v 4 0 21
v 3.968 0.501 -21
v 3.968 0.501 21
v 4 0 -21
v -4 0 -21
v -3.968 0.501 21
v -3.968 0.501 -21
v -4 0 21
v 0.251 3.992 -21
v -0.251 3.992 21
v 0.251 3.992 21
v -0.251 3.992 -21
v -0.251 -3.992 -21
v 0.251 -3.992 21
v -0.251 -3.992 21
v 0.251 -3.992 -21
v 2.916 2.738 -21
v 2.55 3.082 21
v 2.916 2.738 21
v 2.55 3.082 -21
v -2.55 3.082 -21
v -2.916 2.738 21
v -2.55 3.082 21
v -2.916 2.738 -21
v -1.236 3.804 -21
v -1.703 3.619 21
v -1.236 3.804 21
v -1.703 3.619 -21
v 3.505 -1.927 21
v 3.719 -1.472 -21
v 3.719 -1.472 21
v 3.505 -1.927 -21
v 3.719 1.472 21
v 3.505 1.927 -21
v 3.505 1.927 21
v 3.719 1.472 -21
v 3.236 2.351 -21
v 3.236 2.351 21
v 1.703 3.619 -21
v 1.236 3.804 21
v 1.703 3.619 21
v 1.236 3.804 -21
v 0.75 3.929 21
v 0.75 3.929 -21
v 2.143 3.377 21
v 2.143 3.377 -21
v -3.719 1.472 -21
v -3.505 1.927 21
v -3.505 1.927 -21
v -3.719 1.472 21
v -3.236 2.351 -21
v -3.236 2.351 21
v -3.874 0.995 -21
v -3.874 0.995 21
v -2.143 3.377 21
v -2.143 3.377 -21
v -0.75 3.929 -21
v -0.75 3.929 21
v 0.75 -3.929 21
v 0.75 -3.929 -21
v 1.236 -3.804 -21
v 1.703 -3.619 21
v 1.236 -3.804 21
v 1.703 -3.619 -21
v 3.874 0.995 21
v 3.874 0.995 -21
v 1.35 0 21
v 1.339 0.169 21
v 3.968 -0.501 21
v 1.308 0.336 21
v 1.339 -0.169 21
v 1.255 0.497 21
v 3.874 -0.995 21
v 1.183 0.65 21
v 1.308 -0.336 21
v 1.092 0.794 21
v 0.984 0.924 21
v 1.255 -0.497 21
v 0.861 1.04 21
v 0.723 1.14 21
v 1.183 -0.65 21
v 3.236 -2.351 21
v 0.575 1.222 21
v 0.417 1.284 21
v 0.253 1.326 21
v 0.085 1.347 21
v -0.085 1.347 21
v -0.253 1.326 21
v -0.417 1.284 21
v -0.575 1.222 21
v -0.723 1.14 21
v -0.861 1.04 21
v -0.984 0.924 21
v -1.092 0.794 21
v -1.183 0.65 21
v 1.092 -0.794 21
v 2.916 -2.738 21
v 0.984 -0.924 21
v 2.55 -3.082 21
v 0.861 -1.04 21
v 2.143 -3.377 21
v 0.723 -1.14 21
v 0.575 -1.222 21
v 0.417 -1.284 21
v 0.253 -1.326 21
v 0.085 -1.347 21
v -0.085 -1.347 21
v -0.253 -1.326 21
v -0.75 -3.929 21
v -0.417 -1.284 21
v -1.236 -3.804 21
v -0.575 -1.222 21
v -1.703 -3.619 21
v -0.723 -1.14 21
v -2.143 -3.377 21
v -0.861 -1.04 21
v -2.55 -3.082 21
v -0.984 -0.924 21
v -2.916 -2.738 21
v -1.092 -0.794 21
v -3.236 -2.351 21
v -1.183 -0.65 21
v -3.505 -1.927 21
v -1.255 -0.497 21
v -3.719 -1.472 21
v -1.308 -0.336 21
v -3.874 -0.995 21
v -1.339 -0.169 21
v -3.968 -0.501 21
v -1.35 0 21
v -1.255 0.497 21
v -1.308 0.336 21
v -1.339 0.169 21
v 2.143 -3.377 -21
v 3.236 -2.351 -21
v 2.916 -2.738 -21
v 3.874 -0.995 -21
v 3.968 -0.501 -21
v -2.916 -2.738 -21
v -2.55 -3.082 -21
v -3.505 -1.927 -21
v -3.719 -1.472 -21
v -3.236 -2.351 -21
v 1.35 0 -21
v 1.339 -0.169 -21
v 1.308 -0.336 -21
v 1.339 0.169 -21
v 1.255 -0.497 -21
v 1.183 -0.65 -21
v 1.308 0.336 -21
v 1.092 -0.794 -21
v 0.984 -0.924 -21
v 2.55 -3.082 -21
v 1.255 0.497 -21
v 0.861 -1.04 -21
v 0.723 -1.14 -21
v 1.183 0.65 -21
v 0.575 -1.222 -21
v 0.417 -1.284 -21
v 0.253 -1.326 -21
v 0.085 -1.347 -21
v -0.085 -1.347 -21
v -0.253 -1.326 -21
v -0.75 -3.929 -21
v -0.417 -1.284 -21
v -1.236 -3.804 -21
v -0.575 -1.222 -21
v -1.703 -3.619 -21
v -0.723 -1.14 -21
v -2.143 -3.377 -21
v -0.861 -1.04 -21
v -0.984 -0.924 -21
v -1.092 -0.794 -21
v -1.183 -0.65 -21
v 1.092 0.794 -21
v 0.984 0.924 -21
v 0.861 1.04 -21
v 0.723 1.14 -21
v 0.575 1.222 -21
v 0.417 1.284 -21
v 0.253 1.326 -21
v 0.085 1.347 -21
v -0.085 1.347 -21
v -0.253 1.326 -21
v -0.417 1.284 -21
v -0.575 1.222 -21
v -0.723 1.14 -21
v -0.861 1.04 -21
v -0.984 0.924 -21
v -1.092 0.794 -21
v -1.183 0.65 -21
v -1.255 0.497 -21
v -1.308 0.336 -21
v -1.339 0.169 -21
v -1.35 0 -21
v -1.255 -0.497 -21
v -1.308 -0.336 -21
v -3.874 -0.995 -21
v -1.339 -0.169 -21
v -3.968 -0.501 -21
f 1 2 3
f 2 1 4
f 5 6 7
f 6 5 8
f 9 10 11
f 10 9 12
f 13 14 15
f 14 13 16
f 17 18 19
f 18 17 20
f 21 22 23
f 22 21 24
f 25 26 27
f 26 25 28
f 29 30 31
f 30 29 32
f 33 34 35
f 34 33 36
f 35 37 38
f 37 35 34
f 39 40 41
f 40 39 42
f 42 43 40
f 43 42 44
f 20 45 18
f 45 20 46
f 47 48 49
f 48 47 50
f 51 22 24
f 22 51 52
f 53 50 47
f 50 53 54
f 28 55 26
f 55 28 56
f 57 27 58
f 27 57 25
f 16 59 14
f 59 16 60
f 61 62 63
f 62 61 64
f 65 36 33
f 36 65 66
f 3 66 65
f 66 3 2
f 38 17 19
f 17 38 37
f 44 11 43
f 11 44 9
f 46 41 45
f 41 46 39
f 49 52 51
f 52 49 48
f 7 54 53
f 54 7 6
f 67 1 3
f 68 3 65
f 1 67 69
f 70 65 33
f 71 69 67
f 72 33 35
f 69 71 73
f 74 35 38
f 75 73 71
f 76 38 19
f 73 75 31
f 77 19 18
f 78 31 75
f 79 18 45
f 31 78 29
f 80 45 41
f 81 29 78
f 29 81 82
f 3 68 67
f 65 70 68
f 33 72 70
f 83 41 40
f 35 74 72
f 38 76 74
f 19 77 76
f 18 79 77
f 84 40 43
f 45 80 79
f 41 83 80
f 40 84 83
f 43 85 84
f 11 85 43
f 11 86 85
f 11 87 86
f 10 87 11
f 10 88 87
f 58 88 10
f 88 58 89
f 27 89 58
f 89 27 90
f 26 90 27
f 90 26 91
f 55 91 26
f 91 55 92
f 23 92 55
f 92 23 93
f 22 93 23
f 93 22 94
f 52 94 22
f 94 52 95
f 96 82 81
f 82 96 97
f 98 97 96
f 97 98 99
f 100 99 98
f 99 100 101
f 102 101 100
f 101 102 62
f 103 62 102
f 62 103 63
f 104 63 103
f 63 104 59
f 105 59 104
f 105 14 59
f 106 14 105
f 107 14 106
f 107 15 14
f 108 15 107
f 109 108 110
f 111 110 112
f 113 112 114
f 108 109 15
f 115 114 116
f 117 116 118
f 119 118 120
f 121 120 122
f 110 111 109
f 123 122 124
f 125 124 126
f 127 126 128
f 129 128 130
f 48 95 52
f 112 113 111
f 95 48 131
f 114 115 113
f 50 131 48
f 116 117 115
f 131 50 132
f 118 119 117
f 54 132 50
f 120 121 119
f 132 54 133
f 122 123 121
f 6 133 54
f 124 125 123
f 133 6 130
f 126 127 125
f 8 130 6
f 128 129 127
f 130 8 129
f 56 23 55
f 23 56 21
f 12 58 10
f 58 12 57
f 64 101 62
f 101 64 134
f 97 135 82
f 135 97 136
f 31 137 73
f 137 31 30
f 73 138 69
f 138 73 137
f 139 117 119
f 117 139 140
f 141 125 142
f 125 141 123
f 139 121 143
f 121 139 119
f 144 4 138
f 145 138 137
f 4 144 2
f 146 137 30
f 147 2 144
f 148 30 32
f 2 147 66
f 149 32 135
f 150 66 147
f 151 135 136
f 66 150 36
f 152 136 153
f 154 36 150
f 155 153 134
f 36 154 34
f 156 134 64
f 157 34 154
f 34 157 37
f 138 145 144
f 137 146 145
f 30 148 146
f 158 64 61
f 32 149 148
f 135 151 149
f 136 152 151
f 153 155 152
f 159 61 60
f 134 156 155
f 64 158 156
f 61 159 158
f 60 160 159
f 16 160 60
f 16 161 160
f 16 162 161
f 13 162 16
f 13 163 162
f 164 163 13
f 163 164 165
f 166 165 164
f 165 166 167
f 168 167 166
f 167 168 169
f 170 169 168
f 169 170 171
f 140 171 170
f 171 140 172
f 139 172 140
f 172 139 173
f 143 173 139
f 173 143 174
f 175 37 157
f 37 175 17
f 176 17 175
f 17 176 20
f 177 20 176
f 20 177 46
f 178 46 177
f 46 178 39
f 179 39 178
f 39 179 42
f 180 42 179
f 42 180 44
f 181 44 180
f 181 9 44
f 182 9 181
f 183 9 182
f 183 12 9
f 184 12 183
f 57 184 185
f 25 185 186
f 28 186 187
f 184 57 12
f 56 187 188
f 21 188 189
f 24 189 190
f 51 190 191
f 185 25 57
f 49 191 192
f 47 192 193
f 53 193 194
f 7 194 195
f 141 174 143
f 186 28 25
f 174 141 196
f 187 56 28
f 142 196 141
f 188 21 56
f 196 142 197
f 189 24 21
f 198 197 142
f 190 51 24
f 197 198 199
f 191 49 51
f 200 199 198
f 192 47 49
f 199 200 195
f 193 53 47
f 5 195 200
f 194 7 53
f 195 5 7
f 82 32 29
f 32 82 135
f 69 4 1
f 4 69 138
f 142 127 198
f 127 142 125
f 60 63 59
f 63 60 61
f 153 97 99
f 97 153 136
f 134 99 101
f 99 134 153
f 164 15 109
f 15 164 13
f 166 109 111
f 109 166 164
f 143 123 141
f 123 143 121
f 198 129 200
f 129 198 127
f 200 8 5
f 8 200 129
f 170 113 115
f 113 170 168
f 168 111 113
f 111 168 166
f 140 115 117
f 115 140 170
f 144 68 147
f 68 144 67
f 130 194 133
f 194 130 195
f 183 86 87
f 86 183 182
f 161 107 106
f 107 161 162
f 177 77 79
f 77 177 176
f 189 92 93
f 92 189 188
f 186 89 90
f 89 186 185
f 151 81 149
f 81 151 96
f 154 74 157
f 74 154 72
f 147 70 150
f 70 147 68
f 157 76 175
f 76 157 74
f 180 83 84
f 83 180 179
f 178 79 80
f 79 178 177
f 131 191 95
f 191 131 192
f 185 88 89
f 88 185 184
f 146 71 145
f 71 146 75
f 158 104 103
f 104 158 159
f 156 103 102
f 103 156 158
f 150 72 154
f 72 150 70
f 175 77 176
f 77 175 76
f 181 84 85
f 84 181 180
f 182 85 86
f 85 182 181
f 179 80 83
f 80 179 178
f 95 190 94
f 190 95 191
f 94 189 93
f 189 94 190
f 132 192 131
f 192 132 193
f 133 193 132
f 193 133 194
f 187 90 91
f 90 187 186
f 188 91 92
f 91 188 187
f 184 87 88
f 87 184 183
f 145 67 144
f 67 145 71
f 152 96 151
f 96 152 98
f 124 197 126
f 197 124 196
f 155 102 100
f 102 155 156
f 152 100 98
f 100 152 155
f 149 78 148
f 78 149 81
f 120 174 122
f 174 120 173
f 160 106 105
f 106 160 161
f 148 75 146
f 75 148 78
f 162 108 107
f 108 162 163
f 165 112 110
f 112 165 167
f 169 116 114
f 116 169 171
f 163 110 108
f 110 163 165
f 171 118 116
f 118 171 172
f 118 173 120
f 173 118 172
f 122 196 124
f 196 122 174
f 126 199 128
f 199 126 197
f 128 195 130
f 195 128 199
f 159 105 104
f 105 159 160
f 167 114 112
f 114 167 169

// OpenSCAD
$fn = 50;


difference() {
	union() {
		translate(v = [0, 0, -21.0000000000]) {
			cylinder(h = 42, r = 4.0000000000);
		}
	}
	union() {
		translate(v = [0, 0, -100.0000000000]) {
			cylinder(h = 200, r = 1.3500000000);
		}
	}
}
